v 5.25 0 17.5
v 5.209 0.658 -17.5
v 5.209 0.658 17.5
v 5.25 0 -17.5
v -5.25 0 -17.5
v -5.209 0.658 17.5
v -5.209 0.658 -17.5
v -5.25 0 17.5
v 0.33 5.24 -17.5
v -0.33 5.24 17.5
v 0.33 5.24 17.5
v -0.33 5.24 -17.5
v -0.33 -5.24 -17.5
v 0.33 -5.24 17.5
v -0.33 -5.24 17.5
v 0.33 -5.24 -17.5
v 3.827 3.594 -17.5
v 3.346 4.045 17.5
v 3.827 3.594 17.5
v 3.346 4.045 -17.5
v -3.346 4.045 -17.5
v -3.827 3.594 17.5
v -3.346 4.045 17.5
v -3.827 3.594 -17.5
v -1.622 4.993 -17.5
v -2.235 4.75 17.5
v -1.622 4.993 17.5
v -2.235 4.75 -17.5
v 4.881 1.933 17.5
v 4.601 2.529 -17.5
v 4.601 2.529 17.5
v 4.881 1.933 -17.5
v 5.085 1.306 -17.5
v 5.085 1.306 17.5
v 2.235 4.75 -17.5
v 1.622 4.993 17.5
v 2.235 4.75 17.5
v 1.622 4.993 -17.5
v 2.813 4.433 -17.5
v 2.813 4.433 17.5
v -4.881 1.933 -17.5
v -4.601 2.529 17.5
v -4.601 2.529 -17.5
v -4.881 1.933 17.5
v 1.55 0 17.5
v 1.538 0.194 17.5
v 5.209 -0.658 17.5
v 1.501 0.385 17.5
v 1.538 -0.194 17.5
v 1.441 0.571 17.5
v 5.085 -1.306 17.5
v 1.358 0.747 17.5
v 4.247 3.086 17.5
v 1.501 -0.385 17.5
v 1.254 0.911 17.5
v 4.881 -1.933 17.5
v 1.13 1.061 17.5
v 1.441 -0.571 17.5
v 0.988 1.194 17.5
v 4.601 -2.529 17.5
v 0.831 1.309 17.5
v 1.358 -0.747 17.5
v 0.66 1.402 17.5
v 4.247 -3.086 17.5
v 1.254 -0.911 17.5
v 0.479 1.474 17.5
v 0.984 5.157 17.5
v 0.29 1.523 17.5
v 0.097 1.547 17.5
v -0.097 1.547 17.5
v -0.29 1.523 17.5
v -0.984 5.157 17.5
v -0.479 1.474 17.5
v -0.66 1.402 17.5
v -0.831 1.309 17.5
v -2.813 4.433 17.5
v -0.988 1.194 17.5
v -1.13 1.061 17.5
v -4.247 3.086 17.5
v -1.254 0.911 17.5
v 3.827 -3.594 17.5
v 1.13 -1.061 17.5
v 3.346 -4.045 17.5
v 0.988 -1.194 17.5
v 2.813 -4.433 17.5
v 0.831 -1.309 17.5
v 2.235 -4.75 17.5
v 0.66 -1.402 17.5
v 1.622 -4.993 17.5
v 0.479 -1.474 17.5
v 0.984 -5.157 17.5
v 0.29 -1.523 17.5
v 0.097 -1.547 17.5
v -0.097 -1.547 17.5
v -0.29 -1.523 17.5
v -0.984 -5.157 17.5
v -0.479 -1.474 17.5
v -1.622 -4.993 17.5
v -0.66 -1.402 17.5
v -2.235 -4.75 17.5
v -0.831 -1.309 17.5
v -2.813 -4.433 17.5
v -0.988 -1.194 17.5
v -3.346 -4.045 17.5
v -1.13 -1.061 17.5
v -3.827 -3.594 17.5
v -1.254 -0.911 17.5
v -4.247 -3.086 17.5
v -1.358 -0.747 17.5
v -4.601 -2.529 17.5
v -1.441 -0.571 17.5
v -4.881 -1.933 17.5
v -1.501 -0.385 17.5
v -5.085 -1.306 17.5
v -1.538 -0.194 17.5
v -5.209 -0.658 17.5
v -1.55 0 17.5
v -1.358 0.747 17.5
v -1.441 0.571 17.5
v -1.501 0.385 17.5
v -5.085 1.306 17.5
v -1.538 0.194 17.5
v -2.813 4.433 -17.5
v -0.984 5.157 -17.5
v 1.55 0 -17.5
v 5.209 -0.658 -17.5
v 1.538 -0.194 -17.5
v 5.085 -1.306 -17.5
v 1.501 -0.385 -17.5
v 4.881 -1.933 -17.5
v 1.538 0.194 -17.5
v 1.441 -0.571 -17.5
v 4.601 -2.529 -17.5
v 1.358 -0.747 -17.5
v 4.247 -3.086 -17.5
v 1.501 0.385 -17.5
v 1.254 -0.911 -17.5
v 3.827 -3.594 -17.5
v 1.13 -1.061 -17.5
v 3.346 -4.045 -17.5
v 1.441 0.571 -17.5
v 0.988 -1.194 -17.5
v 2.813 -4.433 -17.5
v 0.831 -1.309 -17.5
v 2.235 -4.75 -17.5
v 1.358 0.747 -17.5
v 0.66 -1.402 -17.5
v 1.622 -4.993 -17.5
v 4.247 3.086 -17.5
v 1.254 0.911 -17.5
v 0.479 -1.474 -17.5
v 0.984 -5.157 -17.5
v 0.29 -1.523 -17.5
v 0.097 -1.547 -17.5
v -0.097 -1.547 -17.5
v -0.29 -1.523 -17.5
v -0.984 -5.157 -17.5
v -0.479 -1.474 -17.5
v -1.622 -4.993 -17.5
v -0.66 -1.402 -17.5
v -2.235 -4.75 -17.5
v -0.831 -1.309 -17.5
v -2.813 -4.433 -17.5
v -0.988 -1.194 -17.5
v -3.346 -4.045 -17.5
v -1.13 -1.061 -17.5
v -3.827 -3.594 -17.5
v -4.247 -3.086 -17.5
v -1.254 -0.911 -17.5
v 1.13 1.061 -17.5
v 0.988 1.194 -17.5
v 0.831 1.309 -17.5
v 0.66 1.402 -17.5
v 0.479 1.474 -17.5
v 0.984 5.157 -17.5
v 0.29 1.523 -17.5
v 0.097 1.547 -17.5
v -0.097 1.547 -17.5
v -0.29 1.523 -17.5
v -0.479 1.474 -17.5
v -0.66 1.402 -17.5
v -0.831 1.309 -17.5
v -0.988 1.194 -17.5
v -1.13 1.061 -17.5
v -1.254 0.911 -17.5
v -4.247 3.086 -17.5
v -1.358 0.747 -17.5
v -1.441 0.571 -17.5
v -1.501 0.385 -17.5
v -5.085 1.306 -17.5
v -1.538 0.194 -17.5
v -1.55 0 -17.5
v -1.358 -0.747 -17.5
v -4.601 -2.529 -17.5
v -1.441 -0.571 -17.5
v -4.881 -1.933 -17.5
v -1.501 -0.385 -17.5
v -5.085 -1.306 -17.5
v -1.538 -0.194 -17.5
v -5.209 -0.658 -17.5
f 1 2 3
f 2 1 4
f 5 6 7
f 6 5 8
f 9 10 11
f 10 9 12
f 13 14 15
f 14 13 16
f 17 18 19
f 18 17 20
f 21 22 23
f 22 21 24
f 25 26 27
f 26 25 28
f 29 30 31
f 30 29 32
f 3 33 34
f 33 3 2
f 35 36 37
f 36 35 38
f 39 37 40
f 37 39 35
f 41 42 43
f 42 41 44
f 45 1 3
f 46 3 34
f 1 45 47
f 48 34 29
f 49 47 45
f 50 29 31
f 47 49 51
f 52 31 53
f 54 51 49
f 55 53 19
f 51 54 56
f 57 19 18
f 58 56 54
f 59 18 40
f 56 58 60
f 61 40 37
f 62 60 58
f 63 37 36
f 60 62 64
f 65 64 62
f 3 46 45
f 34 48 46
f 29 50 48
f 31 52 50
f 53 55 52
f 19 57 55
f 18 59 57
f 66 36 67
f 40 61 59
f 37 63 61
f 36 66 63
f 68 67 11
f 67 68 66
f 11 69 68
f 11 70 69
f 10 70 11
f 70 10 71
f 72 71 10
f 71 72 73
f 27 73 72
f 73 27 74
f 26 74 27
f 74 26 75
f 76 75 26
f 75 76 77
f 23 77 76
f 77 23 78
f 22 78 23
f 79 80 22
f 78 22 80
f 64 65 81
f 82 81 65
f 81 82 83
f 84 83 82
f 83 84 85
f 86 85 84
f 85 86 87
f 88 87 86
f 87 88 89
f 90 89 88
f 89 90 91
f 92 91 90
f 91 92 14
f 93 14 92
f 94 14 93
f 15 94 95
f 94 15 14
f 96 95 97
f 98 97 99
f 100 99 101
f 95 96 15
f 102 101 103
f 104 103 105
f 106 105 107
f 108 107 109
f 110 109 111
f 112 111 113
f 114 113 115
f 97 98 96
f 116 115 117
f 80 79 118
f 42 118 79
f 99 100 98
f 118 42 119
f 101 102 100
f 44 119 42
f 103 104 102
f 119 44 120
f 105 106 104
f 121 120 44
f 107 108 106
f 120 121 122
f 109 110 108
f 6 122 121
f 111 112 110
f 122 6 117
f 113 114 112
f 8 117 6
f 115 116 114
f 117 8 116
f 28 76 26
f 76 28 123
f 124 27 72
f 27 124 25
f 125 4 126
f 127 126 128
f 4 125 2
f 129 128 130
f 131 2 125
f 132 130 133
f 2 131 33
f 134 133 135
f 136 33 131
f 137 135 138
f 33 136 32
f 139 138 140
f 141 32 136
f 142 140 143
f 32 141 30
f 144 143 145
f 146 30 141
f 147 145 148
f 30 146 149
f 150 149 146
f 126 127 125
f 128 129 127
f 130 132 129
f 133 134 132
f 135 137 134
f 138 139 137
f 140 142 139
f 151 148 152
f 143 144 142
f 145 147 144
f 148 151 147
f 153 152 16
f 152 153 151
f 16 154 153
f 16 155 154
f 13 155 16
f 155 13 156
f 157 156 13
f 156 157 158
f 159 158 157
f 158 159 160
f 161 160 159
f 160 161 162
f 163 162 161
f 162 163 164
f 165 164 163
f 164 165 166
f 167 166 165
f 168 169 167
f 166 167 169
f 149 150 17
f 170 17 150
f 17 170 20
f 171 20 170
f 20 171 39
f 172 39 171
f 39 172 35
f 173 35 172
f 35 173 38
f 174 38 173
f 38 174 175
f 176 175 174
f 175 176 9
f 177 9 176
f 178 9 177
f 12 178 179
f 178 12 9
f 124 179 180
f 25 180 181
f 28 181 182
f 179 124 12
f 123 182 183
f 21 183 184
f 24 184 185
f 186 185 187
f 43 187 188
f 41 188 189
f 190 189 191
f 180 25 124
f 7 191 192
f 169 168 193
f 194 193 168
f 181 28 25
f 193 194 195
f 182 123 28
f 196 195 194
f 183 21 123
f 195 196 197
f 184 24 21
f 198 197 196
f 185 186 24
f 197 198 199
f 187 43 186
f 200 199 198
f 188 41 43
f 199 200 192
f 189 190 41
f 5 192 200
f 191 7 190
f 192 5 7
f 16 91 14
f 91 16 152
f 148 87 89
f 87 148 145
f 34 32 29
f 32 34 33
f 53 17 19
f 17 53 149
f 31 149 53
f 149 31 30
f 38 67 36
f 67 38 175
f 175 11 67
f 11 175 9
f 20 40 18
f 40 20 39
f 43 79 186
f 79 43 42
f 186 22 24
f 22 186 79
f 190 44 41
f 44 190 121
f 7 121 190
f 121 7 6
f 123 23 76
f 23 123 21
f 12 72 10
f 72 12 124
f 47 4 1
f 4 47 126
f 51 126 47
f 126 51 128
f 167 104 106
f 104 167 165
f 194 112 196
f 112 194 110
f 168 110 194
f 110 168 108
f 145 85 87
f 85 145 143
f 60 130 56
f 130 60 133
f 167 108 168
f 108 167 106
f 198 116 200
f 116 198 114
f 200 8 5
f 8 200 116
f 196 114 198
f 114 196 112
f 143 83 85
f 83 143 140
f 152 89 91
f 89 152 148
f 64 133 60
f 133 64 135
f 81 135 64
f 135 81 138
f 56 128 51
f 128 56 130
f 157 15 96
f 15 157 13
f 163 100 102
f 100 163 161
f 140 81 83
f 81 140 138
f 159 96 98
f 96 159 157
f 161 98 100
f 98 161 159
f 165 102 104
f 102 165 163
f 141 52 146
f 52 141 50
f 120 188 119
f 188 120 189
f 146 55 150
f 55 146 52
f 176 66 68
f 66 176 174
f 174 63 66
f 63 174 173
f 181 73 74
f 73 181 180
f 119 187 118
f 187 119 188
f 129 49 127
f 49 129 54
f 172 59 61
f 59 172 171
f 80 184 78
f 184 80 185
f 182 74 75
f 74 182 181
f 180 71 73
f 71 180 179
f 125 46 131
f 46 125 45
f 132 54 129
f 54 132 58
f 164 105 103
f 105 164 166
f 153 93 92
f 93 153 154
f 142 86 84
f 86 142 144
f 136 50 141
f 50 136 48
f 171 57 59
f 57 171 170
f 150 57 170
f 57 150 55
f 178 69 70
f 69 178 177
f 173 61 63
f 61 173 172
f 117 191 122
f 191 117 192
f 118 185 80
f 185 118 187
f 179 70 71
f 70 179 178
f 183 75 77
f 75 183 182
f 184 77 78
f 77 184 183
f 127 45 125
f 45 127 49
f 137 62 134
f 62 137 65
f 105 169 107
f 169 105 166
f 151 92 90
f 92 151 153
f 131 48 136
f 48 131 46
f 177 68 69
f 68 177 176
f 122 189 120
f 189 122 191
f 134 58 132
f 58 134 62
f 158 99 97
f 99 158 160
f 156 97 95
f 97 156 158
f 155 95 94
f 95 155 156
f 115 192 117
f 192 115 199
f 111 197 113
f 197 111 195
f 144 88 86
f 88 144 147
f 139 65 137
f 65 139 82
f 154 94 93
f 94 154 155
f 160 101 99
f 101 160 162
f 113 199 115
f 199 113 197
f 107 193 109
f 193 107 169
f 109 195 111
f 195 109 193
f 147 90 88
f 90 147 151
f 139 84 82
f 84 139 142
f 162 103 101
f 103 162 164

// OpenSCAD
$fn = 50;


difference() {
	union() {
		translate(v = [0, 0, -17.5000000000]) {
			cylinder(h = 35, r = 5.2500000000);
		}
	}
	union() {
		translate(v = [0, 0, -100.0000000000]) {
			cylinder(h = 200, r = 1.5500000000);
		}
	}
}
